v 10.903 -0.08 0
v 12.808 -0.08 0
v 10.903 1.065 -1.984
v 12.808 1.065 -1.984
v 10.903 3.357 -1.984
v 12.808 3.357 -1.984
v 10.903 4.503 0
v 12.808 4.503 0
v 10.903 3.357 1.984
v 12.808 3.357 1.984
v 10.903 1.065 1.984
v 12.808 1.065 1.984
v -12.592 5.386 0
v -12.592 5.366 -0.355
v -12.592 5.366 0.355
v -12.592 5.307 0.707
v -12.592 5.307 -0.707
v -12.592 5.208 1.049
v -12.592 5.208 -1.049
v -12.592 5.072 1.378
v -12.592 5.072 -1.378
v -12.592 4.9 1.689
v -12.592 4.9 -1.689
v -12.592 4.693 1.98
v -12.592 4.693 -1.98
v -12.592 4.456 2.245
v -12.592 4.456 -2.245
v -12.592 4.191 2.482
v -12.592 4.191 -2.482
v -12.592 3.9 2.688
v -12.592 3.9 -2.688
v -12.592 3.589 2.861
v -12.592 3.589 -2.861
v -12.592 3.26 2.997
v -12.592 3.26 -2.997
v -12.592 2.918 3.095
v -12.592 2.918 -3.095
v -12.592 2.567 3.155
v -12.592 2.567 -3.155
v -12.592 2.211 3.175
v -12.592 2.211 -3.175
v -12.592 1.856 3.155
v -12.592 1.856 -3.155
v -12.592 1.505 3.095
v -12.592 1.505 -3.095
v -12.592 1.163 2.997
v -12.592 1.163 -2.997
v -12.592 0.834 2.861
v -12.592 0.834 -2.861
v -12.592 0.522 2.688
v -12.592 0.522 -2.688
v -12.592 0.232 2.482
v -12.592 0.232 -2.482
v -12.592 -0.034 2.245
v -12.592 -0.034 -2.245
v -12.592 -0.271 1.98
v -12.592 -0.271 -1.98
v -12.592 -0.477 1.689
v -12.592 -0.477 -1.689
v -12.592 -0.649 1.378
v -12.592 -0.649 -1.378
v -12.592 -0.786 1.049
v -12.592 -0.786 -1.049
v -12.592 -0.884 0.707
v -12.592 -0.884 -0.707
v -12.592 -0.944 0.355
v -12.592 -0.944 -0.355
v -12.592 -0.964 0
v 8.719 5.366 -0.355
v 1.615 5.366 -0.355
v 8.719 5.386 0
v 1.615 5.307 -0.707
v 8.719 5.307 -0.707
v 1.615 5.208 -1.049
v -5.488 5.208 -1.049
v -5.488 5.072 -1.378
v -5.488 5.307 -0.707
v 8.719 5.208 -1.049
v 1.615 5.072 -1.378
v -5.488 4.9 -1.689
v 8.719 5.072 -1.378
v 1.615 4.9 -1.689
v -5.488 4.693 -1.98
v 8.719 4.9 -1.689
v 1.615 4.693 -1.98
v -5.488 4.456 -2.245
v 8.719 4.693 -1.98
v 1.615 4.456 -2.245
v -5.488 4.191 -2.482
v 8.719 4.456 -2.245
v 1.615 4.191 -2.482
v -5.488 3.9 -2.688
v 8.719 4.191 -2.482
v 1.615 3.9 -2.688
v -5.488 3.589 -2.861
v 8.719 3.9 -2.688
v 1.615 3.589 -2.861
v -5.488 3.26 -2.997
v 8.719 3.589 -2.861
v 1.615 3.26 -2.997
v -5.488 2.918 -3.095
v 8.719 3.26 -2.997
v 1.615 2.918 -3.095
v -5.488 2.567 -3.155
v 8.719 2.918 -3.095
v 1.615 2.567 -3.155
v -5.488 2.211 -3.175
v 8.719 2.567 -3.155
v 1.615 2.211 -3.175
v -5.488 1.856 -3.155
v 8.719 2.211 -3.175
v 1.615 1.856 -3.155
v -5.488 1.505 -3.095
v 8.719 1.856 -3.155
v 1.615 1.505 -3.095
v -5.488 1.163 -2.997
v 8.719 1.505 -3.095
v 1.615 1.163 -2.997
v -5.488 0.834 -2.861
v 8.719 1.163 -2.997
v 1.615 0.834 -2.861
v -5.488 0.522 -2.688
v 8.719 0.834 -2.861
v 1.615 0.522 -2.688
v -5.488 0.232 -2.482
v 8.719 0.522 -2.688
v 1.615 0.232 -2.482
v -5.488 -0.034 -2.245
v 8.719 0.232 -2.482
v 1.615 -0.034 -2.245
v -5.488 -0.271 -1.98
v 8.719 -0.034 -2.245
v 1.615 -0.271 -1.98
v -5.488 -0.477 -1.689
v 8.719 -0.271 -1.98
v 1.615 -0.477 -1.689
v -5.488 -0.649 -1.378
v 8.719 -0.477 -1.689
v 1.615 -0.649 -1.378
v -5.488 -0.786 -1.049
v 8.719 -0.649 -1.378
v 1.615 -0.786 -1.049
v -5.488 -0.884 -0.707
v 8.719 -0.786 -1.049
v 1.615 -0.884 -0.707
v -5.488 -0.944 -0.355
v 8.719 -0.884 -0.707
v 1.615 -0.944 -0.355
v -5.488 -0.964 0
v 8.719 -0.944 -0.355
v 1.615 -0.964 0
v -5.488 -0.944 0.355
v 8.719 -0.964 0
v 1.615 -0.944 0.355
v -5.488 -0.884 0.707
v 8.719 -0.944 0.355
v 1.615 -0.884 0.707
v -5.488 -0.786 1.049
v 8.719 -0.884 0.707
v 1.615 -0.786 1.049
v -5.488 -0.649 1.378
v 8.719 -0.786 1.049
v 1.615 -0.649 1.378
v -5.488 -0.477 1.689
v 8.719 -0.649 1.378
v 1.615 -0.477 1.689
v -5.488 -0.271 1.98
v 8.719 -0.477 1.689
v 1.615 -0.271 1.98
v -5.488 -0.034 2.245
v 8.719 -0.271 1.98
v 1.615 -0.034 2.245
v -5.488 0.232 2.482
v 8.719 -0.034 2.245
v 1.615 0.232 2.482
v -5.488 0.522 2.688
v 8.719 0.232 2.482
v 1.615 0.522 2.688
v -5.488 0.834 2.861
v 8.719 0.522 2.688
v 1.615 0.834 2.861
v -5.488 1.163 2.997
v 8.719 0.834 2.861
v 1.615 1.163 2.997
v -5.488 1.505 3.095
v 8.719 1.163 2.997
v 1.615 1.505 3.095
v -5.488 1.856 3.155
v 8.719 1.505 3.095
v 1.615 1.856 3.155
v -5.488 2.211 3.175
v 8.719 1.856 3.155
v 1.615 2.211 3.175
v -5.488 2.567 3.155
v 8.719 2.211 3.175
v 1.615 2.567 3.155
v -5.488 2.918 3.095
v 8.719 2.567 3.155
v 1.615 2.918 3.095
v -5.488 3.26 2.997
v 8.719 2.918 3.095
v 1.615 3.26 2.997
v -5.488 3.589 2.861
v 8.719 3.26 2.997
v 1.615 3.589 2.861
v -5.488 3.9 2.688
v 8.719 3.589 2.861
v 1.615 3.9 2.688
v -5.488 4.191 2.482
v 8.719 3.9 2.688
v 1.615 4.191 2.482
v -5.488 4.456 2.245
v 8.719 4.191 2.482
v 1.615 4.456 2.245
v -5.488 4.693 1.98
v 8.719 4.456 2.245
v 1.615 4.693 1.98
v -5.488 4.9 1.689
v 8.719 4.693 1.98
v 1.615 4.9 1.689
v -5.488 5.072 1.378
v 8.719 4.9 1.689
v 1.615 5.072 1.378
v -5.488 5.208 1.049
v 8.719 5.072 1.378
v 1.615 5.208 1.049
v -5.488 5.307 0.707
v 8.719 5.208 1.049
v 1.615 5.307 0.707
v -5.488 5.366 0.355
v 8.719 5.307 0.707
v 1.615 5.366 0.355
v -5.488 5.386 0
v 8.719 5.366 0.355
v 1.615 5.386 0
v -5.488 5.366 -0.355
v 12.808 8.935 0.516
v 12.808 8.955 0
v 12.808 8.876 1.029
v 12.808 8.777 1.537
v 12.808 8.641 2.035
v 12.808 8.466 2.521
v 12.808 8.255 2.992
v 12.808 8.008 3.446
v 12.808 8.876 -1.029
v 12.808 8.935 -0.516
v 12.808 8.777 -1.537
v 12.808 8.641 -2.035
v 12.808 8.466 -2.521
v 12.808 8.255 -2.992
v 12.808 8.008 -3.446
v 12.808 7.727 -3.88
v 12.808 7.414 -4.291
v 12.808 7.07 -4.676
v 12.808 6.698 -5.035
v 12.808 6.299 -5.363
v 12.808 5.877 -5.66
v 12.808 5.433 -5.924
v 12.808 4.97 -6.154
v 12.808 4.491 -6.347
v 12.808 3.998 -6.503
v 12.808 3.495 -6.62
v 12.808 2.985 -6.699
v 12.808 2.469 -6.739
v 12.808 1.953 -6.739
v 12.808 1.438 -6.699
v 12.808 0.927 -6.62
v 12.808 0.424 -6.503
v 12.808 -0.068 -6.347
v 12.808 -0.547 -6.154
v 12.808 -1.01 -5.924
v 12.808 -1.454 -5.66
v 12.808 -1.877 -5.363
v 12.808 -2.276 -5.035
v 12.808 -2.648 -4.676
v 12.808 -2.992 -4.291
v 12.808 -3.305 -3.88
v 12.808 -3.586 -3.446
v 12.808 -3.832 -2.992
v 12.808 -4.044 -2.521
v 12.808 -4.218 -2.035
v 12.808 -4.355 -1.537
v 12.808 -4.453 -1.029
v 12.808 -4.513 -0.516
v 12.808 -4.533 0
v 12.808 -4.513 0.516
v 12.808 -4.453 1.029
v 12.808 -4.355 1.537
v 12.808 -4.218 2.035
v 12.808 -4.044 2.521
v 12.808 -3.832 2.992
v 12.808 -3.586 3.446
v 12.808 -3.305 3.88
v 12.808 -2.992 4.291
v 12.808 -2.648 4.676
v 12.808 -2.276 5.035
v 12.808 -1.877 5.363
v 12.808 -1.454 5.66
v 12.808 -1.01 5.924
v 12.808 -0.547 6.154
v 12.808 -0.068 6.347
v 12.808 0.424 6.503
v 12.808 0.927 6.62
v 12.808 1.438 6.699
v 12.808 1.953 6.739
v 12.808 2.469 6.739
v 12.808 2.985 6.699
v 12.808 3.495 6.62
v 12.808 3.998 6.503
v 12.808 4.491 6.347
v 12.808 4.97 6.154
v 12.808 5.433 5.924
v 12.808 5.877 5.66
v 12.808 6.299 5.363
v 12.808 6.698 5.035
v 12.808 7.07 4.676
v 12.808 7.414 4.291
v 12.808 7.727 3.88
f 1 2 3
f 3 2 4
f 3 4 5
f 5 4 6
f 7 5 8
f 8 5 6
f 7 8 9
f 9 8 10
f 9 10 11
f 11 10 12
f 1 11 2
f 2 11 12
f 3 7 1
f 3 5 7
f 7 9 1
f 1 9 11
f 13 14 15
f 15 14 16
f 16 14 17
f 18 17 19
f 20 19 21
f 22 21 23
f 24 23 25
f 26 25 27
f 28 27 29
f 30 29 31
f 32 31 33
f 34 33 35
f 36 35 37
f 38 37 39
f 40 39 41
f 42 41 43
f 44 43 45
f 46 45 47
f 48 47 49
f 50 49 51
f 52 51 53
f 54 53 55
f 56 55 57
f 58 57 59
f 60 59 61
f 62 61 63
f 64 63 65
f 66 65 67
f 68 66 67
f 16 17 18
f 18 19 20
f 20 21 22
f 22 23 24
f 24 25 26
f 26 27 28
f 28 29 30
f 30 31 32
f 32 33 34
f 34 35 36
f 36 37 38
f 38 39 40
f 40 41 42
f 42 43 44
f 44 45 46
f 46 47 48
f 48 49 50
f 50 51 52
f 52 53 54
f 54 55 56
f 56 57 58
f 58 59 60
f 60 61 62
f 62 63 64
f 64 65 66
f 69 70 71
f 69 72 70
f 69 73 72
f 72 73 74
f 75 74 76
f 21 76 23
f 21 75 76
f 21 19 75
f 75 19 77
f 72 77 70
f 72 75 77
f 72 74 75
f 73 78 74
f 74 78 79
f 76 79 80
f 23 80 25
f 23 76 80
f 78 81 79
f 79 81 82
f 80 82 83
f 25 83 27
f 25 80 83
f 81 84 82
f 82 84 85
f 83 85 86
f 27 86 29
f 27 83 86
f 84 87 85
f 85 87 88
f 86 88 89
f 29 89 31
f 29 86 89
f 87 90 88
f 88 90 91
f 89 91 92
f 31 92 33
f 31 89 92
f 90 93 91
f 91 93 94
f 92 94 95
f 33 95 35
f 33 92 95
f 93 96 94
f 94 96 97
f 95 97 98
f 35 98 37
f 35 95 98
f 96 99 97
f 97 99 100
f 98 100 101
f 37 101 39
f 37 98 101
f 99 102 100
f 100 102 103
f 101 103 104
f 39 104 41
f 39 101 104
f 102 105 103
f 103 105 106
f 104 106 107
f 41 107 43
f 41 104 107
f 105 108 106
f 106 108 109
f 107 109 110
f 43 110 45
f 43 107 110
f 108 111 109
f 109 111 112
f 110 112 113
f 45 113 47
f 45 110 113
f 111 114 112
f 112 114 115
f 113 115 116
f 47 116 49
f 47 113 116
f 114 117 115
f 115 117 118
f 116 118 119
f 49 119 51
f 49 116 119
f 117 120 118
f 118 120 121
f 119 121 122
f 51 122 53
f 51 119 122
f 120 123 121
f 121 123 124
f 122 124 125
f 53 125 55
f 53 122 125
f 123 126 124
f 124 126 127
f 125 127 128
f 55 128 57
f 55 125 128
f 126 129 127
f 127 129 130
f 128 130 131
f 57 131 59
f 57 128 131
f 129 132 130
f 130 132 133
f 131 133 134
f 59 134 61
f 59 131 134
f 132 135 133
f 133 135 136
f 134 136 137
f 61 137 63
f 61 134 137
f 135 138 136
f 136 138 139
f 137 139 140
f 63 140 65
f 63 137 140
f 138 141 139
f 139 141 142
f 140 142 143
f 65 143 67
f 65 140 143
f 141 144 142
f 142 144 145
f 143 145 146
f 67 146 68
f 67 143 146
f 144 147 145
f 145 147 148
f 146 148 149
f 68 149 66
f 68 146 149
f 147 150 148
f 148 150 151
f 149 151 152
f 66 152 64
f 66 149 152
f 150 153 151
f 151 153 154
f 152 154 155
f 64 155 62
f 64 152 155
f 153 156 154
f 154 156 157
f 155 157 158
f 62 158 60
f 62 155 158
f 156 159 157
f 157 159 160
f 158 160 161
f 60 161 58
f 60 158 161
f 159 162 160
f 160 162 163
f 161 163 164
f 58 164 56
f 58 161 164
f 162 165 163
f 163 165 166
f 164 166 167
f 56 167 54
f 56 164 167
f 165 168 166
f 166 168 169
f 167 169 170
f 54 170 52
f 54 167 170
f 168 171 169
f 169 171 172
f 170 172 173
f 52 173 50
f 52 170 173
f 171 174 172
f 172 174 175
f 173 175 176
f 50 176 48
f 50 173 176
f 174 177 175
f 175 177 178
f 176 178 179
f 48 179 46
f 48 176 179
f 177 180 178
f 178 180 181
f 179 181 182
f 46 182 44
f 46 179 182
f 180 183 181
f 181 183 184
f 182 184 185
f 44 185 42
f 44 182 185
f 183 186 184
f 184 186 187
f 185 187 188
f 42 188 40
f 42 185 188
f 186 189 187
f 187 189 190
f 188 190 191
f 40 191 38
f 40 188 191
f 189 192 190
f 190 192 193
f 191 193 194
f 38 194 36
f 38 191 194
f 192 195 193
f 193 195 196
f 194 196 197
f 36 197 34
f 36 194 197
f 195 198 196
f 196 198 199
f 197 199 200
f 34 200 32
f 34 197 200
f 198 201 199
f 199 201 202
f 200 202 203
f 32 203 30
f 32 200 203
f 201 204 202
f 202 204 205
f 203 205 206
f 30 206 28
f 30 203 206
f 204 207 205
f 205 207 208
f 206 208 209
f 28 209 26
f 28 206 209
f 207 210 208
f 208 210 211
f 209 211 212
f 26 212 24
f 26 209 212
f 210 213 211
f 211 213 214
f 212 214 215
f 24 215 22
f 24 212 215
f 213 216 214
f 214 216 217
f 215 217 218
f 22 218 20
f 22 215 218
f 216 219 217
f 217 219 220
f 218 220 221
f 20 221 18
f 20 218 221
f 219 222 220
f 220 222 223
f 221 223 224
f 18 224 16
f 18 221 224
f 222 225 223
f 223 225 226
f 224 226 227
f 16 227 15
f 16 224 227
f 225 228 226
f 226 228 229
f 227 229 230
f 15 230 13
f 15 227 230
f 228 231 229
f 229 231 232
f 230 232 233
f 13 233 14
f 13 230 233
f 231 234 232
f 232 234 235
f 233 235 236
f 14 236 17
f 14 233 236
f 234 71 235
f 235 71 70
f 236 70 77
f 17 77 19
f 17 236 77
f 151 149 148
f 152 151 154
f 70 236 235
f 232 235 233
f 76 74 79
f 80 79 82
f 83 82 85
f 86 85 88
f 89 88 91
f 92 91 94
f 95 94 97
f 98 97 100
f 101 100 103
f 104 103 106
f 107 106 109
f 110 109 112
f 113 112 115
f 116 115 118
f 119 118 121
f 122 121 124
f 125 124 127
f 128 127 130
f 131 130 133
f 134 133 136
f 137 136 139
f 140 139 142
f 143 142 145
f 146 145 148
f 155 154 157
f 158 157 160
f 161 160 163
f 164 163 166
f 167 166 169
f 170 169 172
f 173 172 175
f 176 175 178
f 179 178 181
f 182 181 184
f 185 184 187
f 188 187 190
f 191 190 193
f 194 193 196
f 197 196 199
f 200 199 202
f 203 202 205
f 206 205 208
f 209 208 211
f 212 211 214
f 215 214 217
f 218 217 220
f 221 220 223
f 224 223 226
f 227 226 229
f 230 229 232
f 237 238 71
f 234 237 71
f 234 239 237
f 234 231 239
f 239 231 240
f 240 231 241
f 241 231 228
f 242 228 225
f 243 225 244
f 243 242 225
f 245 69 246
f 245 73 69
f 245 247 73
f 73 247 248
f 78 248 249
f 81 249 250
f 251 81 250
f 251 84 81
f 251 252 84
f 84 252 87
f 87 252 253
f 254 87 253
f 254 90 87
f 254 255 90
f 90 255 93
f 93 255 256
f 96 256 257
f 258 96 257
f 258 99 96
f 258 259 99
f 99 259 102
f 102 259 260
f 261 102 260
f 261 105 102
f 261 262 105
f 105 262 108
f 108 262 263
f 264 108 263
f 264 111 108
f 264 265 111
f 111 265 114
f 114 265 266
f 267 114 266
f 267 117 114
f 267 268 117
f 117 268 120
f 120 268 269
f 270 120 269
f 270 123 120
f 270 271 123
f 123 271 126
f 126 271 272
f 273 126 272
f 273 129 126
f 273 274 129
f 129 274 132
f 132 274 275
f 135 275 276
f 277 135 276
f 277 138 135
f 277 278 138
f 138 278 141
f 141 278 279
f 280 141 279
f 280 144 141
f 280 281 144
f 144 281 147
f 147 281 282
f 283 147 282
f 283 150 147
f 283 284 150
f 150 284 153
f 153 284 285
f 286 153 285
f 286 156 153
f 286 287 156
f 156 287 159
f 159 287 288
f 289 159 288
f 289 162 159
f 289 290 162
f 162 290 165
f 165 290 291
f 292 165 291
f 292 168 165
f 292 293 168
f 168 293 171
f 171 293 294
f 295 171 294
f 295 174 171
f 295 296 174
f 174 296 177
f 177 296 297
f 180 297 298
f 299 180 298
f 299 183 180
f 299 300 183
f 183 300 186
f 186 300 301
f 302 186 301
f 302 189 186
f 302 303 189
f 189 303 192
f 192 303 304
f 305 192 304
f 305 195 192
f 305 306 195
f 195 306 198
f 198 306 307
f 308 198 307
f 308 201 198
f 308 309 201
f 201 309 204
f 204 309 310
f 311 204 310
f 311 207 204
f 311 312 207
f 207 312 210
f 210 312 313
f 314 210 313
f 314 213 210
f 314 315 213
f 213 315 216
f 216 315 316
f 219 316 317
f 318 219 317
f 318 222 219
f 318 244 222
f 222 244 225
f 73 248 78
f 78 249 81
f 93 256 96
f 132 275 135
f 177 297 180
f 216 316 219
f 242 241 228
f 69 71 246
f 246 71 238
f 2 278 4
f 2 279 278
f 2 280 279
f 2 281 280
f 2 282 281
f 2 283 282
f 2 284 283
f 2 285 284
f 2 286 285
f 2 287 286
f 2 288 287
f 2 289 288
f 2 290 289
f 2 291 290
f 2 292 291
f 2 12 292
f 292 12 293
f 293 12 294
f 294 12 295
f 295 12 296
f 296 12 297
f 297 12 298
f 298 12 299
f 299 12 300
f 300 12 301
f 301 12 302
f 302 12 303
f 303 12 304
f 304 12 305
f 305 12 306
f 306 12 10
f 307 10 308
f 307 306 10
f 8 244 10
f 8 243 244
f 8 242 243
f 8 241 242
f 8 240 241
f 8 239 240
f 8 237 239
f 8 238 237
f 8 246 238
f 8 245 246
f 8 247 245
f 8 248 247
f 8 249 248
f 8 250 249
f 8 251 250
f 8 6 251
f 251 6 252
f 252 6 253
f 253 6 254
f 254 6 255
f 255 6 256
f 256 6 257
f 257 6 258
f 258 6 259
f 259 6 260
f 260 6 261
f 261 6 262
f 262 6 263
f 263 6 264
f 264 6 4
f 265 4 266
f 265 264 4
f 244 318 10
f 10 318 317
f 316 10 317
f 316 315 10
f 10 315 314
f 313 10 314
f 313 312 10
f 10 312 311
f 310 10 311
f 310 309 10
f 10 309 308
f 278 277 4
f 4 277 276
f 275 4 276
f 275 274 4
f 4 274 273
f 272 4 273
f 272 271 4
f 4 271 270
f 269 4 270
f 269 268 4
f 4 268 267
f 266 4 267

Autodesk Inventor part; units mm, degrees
ref_plane "YZ Plane" through (0, 0, 0) normal (1, 0, 0) x (0, 1, 0)
ref_plane "XZ Plane" through (0, 0, 0) normal (0, 1, 0) x (-1, 0, 0)
ref_plane "XY Plane" through (0, 0, 0) normal (0, 0, 1) x (1, 0, 0)
sketch "Sketch1" plane through (0, 0, 0) normal (0, 0, 1) x (1, 0, 0)
  line L0 (-12.5919, 2.2112) -> (12.8081, 2.2112)
  line L1 (12.8081, 2.2112) -> (12.8081, 8.9549)
  line L2 (12.8081, 8.9549) -> (8.7187, 5.3862)
  line L3 (8.7187, 5.3862) -> (-12.5919, 5.3862)
  line L4 (-12.5919, 5.3862) -> (-12.5919, 2.2112)
  dimension "d0" = 3.175
  dimension "d2" = 4.0894
  dimension "d3" = 6.7437
  dimension "d19" = 25.4
revolve "Revolution1" add sketch "Sketch1" angle 360 about axis through (-12.5919, 2.2112, 0) along (1, 0, 0)
thread "Thread1" size "1/4-20 UNC" class "2A" standard "ANSI Unified Screw Threads" full length
sketch "Sketch2" plane through (12.8081, 2.2112, 0) normal (1, 0, 0) x (0, 0, -1)
  circle A0 centre (0, 0) radius 6.7437 projected
  line L0 (0, -2.2914) -> (-1.9844, -1.1457)
  line L1 (-1.9844, -1.1457) -> (-1.9844, 1.1457)
  line L2 (-1.9844, 1.1457) -> (0, 2.2914)
  line L3 (0, 2.2914) -> (1.9844, 1.1457)
  line L4 (1.9844, 1.1457) -> (1.9844, -1.1457)
  line L5 (1.9844, -1.1457) -> (0, -2.2914)
  dimension "d16" = 3.9688
extrude "Extrusion1" cut sketch "Sketch2" against normal blind 1.905 contours L0 L1 L2 L3 L4 L5
properties part number "HW-00074"
